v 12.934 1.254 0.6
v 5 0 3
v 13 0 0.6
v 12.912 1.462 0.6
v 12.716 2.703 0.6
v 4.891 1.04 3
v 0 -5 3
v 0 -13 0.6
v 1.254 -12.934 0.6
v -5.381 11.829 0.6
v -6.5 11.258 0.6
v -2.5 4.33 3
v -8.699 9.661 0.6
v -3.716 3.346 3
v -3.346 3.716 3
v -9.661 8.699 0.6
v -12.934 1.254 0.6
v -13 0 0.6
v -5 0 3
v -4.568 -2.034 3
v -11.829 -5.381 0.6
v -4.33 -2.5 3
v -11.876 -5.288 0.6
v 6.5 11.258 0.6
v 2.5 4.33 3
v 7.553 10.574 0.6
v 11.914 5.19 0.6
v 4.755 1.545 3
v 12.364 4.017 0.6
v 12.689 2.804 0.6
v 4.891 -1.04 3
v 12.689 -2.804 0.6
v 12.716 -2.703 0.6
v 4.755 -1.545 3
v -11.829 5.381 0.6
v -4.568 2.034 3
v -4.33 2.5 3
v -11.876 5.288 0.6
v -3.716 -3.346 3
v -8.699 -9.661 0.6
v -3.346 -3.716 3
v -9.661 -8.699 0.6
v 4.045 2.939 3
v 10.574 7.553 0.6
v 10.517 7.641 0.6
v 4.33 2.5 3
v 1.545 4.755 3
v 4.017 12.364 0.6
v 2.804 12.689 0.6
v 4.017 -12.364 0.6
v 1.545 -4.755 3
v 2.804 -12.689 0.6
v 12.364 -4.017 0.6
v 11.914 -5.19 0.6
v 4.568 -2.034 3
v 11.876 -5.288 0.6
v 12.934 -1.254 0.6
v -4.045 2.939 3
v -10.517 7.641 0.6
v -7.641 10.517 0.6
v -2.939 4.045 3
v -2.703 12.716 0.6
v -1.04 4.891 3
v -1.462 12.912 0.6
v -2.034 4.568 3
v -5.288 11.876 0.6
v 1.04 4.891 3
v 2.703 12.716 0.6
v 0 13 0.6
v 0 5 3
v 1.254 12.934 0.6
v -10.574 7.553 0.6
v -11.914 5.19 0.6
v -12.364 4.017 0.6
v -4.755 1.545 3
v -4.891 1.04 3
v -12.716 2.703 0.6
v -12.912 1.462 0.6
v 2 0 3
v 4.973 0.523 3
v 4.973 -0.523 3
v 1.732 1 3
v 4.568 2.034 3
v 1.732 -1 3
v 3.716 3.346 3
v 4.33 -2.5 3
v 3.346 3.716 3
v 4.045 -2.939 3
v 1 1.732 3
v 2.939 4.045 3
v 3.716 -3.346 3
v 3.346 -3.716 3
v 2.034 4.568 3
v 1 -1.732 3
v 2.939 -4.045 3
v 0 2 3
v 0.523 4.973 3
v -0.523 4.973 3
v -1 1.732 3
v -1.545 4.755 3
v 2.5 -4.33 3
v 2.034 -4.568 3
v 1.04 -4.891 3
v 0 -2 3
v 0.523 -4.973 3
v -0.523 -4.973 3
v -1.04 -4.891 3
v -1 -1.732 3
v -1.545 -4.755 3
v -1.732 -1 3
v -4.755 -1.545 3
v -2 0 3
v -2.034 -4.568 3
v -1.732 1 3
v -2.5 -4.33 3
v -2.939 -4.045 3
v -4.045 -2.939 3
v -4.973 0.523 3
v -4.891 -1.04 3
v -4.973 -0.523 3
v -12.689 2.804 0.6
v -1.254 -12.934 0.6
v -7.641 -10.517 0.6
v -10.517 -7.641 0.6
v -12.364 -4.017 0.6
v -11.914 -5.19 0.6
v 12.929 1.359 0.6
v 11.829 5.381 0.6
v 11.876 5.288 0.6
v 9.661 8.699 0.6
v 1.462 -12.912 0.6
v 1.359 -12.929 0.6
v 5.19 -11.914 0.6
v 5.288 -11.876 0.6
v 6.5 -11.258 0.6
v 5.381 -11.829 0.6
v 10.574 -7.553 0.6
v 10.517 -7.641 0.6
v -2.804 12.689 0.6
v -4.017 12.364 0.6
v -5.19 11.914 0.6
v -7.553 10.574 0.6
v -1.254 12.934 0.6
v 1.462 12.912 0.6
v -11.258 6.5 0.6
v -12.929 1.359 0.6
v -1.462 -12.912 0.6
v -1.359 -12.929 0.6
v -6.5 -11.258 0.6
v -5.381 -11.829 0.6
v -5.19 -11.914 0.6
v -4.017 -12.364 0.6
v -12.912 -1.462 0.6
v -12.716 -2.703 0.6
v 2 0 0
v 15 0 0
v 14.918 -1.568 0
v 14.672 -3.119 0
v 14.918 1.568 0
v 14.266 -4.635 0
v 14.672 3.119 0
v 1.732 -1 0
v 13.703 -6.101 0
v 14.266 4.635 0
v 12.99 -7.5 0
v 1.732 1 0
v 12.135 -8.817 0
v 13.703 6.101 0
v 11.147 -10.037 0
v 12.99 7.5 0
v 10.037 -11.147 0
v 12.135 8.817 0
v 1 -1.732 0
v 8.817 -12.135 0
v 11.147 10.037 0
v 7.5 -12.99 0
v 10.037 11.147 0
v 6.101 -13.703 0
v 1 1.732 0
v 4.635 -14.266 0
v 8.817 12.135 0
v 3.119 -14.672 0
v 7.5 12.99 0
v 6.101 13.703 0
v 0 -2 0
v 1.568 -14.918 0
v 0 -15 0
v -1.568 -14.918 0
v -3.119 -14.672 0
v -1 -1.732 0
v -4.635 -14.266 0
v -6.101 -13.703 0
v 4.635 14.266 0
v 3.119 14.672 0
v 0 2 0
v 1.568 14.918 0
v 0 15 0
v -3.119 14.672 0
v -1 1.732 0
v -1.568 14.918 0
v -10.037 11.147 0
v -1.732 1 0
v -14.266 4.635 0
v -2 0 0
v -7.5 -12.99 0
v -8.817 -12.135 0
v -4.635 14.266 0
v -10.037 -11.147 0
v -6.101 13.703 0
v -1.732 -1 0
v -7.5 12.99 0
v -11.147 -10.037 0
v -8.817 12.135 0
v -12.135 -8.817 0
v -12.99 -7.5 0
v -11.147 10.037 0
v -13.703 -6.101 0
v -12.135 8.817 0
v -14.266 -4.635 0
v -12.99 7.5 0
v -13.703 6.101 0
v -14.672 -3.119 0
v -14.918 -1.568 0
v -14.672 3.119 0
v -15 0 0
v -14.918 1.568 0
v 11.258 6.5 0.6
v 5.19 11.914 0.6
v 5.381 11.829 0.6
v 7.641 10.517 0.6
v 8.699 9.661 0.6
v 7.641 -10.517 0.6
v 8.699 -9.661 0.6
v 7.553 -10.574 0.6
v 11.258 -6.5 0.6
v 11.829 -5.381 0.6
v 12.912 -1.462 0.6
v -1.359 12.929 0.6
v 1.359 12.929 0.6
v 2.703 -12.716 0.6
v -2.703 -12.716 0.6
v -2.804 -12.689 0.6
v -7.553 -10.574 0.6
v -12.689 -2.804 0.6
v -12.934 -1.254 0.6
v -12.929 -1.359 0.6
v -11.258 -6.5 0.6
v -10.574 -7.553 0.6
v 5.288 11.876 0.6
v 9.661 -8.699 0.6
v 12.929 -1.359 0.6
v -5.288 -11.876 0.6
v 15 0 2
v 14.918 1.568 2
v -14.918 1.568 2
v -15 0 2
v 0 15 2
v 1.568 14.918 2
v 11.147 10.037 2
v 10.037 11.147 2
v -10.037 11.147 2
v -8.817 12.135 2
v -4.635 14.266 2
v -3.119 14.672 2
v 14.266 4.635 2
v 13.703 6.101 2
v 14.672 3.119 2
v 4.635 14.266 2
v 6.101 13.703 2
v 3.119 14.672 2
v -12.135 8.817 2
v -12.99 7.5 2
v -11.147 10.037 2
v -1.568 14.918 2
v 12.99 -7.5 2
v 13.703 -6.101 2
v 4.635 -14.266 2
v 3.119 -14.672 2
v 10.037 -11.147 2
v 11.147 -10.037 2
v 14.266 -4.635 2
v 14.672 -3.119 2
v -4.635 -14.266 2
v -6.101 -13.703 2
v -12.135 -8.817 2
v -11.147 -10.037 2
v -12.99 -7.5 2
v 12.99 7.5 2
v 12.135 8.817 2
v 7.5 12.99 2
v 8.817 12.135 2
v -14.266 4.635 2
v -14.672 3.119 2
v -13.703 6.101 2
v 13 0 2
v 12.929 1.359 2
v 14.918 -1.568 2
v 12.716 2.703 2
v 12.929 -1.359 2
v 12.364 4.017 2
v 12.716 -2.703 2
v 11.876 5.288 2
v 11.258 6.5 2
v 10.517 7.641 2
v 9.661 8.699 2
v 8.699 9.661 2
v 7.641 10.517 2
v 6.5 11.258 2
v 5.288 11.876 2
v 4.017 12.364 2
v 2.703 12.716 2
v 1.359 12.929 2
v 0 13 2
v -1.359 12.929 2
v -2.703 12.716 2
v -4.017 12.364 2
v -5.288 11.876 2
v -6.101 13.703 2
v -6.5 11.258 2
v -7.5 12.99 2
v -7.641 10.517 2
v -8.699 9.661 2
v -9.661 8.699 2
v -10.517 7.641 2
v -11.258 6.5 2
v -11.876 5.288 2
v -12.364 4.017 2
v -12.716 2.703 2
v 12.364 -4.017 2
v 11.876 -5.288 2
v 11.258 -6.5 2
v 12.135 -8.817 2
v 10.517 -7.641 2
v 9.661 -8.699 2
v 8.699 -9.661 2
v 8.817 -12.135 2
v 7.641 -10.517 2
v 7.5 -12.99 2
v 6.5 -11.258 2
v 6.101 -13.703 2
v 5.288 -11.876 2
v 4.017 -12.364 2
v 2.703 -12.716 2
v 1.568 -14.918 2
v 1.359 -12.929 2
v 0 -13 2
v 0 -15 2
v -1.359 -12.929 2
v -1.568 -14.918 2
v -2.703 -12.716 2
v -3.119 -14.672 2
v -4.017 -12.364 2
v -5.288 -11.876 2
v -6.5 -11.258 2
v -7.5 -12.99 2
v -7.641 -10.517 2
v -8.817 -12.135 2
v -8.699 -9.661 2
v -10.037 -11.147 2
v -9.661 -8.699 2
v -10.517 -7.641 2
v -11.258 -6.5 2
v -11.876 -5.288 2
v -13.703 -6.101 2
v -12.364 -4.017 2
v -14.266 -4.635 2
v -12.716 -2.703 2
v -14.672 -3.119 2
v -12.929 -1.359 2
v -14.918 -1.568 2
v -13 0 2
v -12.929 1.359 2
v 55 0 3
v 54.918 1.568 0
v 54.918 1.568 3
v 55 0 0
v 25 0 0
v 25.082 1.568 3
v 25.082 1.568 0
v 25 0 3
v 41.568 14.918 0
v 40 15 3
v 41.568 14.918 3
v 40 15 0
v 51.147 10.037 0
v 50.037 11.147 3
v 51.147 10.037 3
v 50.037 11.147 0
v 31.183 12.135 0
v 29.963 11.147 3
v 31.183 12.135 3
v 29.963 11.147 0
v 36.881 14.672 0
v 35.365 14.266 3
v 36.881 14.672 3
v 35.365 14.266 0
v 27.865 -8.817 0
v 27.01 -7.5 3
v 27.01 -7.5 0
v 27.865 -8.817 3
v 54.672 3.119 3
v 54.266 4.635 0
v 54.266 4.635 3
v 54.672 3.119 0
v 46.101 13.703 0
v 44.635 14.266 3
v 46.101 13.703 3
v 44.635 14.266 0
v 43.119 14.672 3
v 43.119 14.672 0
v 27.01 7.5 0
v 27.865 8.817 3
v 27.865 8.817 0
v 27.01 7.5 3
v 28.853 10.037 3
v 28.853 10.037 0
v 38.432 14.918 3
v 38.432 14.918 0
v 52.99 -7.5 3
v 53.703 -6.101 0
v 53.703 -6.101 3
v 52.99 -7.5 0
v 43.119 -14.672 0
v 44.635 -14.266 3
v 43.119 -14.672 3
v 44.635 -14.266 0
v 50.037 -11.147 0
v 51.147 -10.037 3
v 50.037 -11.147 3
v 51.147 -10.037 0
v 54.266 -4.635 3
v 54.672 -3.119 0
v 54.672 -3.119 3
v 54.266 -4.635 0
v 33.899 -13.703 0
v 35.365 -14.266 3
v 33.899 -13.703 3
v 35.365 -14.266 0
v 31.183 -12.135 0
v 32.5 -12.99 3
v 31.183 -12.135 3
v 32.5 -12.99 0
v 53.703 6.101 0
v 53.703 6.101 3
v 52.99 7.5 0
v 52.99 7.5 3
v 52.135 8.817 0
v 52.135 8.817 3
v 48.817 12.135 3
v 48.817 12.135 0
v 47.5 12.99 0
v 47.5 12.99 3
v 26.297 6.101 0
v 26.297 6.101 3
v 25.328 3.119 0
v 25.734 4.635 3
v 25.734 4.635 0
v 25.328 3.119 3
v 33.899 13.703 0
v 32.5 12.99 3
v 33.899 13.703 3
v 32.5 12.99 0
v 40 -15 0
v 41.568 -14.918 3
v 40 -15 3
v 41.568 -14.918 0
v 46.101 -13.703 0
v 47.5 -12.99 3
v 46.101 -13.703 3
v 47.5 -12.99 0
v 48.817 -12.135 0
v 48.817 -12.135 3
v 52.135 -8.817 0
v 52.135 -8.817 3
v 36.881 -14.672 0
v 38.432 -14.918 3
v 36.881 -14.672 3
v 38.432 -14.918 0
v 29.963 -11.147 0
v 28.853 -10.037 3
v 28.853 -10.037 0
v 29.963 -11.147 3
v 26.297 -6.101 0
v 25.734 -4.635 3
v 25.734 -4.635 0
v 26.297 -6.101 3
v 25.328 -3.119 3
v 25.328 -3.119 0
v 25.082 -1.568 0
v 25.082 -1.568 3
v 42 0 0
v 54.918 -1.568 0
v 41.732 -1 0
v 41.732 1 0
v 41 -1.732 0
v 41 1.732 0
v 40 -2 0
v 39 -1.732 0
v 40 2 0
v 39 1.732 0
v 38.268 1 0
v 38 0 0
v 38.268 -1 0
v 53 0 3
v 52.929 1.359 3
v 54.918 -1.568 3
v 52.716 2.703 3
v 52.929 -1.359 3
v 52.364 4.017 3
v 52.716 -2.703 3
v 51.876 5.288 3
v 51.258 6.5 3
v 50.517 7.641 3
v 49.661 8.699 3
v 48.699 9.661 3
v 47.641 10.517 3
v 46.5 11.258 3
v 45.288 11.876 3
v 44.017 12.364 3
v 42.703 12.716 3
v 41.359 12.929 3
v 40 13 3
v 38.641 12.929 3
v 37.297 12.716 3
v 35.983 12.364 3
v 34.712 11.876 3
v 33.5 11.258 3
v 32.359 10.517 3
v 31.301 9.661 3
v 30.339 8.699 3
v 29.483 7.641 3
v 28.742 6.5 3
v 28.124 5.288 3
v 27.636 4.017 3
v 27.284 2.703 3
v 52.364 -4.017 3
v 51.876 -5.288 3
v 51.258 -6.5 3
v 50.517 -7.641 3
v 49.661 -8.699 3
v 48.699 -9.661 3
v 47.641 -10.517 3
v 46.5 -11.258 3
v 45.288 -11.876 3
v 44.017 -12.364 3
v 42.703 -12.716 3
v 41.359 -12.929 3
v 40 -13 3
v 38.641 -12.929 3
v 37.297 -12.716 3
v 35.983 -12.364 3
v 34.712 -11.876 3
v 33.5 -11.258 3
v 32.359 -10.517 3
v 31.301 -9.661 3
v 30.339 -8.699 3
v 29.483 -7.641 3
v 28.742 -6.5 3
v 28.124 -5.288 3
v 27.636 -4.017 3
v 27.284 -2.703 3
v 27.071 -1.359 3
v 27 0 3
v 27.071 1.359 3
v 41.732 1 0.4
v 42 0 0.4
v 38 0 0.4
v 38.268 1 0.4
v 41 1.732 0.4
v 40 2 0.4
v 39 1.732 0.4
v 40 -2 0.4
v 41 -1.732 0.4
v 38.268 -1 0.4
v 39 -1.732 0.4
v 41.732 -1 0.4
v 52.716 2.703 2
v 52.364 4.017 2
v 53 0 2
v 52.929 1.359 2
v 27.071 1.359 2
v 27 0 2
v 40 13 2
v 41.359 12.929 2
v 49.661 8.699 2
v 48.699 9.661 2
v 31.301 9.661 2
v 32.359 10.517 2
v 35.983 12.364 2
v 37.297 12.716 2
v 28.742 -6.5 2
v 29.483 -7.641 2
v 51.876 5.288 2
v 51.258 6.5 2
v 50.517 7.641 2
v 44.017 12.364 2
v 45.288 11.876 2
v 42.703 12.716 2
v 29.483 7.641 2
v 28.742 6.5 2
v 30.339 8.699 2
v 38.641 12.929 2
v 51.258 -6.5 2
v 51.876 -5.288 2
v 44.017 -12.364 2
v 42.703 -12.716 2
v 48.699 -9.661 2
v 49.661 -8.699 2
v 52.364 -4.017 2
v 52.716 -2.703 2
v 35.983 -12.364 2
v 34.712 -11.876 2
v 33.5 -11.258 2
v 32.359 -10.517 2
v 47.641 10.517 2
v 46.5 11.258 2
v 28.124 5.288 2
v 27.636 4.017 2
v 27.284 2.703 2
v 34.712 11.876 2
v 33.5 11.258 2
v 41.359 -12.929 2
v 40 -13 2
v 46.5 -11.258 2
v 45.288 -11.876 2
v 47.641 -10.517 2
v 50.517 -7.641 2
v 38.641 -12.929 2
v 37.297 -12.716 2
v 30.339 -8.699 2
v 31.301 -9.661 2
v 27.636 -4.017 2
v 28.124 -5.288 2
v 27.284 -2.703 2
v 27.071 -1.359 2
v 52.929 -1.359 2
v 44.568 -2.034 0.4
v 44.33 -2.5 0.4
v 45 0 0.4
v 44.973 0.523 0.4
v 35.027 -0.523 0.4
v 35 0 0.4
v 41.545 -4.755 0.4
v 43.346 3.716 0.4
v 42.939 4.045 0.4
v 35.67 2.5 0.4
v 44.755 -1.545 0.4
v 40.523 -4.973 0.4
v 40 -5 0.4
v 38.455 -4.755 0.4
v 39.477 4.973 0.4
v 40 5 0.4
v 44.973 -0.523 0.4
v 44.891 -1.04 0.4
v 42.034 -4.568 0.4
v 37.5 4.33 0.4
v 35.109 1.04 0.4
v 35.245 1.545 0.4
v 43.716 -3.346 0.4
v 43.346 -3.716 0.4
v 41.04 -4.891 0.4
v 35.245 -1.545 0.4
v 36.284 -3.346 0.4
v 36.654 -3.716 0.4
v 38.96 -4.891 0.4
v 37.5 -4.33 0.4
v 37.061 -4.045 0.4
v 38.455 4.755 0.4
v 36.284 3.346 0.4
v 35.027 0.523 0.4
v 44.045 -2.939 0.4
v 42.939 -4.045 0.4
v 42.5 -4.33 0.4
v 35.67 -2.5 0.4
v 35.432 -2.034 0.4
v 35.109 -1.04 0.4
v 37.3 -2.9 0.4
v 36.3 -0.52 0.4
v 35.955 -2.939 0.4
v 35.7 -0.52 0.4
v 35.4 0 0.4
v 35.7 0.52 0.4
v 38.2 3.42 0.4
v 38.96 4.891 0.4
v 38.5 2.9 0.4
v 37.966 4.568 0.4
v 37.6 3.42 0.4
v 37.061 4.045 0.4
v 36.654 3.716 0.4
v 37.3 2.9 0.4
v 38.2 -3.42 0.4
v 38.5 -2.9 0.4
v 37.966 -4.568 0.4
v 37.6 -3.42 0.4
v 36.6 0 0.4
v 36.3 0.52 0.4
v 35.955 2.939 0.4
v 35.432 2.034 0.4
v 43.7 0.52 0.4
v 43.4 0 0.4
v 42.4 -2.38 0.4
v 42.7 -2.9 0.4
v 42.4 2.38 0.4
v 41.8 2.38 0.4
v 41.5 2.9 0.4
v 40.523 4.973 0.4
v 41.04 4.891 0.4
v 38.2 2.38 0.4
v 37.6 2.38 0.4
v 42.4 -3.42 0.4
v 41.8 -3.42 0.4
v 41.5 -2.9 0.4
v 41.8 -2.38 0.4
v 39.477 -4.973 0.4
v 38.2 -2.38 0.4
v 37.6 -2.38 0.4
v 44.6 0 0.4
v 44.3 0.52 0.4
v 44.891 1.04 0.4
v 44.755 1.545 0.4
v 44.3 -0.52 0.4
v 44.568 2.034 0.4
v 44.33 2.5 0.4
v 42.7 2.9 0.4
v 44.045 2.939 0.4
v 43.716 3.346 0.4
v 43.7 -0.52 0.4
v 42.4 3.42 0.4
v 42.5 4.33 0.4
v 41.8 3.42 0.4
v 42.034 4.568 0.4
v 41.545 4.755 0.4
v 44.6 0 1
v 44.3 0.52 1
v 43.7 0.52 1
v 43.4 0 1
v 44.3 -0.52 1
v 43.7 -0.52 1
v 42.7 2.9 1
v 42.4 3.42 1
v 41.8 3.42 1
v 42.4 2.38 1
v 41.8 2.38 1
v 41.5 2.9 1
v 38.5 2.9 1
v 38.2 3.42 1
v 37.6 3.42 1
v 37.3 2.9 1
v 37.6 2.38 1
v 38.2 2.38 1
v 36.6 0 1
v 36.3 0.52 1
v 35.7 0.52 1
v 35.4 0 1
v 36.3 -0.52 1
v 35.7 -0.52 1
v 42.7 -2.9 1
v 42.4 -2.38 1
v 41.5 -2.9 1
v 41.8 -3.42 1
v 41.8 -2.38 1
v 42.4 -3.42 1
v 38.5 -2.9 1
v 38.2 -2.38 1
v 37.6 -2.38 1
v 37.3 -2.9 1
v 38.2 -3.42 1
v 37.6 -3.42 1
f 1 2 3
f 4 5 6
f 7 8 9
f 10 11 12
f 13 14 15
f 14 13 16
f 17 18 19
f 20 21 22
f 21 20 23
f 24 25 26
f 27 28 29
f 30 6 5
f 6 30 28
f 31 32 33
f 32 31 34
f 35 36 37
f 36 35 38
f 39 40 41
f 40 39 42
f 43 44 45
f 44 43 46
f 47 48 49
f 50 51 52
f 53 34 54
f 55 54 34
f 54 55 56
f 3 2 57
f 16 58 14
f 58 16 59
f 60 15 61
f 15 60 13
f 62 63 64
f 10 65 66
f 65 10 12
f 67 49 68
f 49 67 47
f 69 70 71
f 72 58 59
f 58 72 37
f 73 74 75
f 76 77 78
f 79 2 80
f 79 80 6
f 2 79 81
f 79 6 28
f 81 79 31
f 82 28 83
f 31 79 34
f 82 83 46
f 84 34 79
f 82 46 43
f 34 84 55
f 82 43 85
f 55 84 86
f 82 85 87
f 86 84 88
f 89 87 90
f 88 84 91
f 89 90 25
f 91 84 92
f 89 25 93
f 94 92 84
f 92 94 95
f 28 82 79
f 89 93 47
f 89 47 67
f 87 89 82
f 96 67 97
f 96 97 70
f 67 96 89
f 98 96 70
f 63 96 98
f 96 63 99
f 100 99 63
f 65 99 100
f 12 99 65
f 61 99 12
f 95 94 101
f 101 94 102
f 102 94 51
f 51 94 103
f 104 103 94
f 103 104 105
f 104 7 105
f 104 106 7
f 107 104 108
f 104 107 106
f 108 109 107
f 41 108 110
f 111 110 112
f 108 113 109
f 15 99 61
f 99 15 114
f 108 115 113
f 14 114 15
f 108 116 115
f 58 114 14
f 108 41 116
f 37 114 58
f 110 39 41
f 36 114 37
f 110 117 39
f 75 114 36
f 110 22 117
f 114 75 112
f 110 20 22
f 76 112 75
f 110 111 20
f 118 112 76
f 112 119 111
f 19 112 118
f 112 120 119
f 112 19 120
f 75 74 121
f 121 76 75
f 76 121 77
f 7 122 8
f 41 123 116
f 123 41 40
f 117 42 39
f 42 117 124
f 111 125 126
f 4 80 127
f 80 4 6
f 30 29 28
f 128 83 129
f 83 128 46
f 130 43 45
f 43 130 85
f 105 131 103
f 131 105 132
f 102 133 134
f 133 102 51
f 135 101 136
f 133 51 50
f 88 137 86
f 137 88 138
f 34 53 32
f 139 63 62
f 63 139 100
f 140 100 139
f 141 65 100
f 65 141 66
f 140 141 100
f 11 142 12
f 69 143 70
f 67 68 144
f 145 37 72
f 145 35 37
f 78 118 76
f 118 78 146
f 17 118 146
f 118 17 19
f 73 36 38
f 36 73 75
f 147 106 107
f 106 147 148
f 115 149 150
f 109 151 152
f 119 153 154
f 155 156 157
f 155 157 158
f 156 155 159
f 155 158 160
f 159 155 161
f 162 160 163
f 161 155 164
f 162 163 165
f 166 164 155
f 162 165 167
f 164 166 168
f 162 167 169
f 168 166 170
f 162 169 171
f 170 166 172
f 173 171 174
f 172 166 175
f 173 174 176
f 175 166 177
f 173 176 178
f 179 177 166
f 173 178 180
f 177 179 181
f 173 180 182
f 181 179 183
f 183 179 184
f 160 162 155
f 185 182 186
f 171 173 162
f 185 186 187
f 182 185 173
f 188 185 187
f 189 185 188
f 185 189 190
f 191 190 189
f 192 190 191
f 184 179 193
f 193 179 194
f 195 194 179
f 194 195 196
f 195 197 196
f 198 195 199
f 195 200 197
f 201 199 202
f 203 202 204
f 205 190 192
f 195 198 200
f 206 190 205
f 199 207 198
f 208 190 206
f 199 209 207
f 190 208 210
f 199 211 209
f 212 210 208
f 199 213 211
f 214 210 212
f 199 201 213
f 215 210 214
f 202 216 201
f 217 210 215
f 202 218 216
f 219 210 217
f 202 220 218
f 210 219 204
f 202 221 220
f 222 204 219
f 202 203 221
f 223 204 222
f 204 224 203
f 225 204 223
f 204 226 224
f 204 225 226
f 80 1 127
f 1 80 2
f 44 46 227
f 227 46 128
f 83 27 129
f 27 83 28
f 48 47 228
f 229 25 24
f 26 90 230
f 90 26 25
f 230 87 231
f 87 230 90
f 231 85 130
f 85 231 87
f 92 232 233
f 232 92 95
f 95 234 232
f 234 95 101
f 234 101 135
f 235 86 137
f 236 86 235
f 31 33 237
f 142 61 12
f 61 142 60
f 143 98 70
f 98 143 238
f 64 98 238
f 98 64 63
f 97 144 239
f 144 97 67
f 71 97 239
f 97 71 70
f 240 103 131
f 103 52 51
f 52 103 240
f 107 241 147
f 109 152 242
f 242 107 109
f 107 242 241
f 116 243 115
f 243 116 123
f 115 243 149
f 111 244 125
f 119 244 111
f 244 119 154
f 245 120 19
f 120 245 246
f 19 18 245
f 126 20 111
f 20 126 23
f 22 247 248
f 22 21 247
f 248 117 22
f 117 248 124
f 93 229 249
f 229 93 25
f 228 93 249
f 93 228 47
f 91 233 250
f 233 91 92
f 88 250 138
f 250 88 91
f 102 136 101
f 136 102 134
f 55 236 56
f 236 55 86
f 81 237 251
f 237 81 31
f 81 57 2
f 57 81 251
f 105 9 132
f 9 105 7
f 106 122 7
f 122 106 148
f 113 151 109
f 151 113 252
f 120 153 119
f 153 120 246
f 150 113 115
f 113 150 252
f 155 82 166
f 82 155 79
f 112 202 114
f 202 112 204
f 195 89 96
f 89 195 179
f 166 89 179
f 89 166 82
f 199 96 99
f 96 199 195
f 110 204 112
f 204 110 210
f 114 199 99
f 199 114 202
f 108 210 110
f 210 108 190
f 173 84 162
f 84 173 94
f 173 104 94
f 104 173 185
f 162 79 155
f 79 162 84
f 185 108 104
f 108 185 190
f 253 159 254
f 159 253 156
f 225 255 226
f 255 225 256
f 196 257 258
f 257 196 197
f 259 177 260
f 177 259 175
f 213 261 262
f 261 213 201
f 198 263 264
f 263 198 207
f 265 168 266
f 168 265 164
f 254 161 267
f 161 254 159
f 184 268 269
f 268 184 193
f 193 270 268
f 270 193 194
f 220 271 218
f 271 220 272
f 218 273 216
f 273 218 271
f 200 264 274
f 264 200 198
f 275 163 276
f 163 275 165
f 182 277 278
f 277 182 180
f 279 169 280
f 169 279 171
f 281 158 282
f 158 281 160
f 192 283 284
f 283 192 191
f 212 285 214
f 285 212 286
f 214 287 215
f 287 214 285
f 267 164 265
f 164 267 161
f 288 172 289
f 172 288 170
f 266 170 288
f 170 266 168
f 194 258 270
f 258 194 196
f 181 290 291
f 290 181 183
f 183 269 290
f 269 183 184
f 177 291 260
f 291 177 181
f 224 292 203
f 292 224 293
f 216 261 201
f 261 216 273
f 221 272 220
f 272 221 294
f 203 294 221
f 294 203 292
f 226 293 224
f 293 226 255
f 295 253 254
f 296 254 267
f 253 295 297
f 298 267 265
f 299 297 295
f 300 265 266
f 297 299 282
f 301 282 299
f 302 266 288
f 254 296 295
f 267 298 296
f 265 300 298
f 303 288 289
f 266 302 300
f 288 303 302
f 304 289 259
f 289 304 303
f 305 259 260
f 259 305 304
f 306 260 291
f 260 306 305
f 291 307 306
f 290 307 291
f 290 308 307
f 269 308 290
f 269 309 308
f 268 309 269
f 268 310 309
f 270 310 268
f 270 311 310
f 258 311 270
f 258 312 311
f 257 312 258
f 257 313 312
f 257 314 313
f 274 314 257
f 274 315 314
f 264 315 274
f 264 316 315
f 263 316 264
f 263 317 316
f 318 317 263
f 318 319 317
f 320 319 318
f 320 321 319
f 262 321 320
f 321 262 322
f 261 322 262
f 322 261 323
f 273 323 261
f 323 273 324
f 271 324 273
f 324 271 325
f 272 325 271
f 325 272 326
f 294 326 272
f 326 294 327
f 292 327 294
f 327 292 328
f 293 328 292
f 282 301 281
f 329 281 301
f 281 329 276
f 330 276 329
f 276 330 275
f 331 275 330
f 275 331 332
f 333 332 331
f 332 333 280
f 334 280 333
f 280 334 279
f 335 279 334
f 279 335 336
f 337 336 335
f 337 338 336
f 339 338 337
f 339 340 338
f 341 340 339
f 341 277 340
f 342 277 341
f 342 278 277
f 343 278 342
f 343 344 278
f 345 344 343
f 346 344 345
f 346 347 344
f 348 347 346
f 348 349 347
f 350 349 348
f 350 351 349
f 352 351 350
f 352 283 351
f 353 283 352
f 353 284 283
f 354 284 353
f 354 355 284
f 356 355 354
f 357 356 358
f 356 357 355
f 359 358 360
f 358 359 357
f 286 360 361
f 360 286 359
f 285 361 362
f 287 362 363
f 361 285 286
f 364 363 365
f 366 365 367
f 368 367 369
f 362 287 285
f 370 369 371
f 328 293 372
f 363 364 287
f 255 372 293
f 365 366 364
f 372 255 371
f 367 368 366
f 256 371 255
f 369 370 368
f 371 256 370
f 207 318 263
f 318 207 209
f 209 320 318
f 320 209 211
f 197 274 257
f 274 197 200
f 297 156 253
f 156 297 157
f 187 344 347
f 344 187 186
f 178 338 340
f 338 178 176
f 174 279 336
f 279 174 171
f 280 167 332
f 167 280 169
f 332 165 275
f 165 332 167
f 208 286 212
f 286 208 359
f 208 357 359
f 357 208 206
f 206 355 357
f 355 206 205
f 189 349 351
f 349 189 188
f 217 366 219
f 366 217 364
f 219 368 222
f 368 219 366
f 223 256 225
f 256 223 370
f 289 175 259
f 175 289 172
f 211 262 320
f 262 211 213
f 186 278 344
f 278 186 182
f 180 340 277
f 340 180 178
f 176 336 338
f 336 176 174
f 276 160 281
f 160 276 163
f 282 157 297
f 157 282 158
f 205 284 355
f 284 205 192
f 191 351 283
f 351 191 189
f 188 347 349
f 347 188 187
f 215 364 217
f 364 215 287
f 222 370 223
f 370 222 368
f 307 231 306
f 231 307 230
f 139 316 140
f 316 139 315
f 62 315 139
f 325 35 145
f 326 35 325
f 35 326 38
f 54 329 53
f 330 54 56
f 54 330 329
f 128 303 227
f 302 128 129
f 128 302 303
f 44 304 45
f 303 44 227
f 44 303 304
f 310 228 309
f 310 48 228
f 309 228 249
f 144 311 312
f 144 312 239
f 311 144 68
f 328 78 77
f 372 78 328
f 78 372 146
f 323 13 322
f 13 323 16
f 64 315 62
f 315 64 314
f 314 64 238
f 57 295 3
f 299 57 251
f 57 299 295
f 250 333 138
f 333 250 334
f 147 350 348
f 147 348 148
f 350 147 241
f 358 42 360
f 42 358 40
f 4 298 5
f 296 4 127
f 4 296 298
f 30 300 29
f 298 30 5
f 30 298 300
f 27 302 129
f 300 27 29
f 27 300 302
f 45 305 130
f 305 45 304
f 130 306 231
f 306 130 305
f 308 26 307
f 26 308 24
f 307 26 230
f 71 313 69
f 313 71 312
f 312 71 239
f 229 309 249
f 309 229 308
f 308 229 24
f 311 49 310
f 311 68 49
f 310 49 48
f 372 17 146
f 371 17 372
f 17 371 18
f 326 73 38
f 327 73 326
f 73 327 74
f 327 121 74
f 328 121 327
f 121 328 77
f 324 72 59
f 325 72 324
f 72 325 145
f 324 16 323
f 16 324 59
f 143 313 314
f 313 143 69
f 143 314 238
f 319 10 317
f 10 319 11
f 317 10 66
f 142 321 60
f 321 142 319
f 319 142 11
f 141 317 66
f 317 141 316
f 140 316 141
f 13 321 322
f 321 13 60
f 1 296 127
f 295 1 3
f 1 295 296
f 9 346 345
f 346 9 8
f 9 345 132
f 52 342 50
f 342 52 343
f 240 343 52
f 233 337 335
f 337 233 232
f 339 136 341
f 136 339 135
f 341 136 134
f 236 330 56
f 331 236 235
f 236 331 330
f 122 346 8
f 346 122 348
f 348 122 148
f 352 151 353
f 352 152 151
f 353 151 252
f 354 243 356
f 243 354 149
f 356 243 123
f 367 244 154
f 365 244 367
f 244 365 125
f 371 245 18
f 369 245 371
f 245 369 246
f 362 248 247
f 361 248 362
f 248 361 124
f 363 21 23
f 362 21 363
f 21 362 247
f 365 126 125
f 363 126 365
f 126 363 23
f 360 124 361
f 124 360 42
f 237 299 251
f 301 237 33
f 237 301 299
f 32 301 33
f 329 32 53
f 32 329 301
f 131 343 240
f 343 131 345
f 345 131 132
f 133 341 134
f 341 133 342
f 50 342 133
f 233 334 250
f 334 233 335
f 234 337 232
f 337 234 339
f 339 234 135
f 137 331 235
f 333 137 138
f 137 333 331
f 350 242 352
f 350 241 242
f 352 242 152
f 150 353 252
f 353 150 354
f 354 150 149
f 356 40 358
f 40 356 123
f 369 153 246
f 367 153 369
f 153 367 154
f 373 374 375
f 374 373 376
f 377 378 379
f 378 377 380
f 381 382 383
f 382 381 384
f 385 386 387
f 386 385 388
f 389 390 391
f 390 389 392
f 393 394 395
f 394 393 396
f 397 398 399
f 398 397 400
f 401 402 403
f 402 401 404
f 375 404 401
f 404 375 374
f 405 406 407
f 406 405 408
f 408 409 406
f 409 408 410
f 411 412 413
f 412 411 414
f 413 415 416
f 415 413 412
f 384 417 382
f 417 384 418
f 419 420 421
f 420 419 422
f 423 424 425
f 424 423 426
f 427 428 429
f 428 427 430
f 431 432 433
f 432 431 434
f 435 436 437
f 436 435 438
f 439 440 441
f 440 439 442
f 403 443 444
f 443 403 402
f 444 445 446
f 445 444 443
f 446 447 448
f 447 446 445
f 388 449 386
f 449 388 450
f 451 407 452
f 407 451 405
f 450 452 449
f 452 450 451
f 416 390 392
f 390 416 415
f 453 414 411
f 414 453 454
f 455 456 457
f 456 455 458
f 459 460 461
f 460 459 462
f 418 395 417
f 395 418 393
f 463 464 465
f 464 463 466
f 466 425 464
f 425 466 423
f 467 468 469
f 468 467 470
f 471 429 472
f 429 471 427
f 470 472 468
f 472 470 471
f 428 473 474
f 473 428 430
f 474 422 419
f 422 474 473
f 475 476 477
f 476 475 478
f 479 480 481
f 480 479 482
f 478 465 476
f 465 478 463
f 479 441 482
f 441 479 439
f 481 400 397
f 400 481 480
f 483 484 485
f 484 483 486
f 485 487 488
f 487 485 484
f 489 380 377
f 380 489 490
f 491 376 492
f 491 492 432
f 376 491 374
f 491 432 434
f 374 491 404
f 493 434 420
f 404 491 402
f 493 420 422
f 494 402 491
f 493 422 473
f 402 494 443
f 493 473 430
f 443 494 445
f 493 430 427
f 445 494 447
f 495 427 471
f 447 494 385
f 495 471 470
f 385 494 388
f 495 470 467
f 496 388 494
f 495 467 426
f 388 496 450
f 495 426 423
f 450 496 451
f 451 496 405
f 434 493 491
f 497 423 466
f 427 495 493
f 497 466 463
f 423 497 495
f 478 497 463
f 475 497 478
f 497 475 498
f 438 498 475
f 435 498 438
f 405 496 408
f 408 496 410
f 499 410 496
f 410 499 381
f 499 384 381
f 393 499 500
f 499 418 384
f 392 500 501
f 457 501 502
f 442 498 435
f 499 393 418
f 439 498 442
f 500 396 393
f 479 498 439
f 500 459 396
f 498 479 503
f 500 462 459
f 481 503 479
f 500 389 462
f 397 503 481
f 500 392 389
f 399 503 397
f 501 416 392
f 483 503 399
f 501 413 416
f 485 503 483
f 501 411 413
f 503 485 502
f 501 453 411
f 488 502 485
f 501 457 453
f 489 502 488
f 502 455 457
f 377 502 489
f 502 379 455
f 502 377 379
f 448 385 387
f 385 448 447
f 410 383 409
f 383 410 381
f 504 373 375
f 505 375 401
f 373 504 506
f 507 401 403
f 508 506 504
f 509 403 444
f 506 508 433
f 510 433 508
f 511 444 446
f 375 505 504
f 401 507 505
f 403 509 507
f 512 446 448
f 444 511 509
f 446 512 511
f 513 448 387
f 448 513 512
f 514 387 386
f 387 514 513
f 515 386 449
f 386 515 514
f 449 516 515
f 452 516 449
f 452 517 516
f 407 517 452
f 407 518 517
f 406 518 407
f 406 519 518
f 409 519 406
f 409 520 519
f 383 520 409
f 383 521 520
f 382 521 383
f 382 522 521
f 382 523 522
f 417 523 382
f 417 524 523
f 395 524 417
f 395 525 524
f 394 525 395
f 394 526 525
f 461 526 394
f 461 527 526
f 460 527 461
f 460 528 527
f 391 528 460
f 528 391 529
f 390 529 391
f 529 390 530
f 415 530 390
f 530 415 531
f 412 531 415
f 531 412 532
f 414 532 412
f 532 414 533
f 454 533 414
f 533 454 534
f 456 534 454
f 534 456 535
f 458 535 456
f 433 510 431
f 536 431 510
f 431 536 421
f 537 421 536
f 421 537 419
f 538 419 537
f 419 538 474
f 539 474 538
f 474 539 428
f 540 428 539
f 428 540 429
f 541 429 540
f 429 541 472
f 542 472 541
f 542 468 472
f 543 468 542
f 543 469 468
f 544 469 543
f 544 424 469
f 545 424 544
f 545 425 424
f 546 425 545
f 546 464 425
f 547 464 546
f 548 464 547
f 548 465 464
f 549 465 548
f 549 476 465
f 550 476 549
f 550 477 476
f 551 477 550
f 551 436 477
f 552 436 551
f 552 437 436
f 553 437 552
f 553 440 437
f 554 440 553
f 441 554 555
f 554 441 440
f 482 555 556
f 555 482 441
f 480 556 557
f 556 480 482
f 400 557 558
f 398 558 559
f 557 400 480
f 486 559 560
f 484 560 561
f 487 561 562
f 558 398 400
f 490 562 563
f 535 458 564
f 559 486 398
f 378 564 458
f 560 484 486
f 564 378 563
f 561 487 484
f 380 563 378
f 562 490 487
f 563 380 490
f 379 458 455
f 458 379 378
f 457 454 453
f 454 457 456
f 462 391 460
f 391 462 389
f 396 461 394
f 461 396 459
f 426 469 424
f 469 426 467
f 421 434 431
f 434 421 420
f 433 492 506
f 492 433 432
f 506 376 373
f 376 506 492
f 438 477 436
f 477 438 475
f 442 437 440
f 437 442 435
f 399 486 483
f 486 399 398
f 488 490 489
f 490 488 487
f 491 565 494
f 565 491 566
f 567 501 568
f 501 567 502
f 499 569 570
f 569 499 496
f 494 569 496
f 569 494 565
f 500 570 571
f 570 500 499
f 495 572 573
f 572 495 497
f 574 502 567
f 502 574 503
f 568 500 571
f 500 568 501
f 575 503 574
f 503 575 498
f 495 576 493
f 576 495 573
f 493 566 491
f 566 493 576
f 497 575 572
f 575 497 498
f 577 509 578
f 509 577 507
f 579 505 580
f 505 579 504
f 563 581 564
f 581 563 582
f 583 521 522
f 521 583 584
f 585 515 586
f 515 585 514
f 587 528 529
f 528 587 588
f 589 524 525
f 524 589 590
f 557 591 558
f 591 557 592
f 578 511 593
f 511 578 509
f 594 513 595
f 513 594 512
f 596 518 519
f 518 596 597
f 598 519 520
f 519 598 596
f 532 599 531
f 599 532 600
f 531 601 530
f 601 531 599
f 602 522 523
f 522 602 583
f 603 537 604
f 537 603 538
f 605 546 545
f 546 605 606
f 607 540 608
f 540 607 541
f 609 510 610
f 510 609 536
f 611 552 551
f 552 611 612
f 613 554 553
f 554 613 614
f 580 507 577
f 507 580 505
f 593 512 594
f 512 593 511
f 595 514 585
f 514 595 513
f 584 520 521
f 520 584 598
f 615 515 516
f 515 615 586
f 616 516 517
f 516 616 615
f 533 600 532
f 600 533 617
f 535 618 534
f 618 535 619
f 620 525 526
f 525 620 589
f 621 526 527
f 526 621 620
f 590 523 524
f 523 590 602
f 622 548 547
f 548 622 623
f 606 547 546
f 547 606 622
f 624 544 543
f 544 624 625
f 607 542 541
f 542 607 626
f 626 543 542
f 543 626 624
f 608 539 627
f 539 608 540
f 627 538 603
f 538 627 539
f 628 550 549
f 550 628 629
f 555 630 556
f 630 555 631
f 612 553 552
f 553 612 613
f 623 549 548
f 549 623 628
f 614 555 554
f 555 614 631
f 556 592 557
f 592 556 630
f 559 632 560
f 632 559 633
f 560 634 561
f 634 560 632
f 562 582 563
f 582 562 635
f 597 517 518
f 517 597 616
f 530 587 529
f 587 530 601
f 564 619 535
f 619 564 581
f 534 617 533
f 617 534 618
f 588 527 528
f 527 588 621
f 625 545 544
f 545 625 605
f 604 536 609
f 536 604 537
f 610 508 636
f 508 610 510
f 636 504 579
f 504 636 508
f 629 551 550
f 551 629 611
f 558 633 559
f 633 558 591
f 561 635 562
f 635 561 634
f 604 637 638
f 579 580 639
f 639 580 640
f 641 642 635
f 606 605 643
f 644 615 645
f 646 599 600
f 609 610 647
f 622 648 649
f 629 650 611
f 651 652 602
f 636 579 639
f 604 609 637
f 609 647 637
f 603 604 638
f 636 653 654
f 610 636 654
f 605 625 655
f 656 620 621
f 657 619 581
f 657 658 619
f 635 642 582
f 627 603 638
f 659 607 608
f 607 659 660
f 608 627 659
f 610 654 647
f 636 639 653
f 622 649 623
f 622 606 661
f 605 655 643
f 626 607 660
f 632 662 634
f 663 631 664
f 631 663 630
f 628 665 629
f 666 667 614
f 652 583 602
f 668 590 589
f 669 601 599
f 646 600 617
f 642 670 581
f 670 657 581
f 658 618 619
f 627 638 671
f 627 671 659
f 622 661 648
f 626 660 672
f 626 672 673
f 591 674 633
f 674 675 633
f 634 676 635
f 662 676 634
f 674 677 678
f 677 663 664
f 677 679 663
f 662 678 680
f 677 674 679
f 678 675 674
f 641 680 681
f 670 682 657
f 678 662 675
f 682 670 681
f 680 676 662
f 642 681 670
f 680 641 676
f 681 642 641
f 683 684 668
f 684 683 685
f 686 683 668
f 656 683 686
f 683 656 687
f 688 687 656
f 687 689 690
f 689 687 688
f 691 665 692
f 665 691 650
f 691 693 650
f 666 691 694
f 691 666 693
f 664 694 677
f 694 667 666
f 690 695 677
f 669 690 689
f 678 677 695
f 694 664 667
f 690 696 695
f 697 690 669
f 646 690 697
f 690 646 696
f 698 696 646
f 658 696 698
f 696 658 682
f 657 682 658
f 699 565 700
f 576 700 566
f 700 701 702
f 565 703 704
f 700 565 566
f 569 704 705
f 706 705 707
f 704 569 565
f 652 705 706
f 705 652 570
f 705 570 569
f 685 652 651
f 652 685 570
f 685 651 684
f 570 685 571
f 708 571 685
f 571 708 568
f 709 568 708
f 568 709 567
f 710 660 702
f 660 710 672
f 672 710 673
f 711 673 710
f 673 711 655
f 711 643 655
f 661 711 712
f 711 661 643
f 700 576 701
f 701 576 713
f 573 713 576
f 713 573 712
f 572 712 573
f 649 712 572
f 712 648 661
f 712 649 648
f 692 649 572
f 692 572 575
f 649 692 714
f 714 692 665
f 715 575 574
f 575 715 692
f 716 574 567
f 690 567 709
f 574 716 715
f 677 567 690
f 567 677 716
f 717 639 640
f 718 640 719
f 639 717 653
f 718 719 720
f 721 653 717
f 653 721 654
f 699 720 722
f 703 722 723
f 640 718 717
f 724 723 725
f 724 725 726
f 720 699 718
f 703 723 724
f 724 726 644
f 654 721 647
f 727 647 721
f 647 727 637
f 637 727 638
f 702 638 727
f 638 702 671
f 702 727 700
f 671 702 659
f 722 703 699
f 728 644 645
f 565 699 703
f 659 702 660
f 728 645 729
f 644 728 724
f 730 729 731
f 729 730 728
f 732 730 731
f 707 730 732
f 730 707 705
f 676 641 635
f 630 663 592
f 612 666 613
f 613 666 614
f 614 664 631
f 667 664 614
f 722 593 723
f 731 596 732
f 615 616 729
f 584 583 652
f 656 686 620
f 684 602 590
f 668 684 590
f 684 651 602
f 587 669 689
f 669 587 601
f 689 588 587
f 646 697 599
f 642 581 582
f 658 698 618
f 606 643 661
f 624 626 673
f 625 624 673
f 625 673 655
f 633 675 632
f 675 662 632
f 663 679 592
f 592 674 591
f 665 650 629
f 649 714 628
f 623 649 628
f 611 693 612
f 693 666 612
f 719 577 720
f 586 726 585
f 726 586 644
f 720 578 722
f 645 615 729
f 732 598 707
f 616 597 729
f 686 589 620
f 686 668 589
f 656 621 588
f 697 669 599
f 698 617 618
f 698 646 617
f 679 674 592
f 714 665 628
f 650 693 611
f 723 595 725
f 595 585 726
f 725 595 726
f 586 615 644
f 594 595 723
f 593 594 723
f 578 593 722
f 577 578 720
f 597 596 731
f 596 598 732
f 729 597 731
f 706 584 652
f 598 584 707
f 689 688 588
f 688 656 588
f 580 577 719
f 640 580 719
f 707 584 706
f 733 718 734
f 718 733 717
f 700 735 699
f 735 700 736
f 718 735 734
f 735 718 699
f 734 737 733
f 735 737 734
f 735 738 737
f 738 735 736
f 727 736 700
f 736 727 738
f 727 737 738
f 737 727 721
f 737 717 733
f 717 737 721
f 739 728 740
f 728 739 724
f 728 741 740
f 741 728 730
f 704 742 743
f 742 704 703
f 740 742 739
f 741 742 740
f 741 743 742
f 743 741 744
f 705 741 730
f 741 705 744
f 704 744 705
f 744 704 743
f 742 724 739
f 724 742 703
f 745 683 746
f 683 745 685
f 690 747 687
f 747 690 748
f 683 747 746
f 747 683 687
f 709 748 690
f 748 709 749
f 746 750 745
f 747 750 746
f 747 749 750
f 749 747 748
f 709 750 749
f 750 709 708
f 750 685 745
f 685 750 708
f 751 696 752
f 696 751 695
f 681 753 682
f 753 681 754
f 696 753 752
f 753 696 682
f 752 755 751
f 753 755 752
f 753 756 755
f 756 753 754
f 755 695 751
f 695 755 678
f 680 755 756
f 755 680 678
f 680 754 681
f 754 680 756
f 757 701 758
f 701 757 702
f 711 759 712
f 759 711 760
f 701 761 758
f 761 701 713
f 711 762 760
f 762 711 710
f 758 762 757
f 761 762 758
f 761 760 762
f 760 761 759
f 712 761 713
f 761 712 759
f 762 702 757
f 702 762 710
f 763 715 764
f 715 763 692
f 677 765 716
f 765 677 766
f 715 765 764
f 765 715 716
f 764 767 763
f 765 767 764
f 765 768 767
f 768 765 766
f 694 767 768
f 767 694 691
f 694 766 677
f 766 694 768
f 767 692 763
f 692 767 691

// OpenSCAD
difference(){
    cylinder(3,15,5,$fn=60);
    cylinder(4,2,2,$fn=12);
}//dif


difference(){
    cylinder(2,15,15,$fn=60);
    cylinder(4,13,13,$fn=60);
}//dif

translate([40,0,0])
{
    difference(){
        cylinder(3,15,15,$fn=60);
        cylinder(4,2,2,$fn=12);  
        translate([0,0,2])    
            cylinder(4,13,13,$fn=60);
        translate([0,0,0.4])    
            cylinder(1.6,5,13,$fn=60);
    }
    translate([4,0,0])
        cylinder(1,0.6,0.6,$fn=6);    
    translate([2.1,2.9,0])
        cylinder(1,0.6,0.6,$fn=6);
    translate([-2.1,2.9,0])
        cylinder(1,0.6,0.6,$fn=6);
    translate([-4,0,0])
        cylinder(1,0.6,0.6,$fn=6);
    translate([2.1,-2.9,0])
        cylinder(1,0.6,0.6,$fn=6);
    translate([-2.1,-2.9,0])
        cylinder(1,0.6,0.6,$fn=6);
}//transform
